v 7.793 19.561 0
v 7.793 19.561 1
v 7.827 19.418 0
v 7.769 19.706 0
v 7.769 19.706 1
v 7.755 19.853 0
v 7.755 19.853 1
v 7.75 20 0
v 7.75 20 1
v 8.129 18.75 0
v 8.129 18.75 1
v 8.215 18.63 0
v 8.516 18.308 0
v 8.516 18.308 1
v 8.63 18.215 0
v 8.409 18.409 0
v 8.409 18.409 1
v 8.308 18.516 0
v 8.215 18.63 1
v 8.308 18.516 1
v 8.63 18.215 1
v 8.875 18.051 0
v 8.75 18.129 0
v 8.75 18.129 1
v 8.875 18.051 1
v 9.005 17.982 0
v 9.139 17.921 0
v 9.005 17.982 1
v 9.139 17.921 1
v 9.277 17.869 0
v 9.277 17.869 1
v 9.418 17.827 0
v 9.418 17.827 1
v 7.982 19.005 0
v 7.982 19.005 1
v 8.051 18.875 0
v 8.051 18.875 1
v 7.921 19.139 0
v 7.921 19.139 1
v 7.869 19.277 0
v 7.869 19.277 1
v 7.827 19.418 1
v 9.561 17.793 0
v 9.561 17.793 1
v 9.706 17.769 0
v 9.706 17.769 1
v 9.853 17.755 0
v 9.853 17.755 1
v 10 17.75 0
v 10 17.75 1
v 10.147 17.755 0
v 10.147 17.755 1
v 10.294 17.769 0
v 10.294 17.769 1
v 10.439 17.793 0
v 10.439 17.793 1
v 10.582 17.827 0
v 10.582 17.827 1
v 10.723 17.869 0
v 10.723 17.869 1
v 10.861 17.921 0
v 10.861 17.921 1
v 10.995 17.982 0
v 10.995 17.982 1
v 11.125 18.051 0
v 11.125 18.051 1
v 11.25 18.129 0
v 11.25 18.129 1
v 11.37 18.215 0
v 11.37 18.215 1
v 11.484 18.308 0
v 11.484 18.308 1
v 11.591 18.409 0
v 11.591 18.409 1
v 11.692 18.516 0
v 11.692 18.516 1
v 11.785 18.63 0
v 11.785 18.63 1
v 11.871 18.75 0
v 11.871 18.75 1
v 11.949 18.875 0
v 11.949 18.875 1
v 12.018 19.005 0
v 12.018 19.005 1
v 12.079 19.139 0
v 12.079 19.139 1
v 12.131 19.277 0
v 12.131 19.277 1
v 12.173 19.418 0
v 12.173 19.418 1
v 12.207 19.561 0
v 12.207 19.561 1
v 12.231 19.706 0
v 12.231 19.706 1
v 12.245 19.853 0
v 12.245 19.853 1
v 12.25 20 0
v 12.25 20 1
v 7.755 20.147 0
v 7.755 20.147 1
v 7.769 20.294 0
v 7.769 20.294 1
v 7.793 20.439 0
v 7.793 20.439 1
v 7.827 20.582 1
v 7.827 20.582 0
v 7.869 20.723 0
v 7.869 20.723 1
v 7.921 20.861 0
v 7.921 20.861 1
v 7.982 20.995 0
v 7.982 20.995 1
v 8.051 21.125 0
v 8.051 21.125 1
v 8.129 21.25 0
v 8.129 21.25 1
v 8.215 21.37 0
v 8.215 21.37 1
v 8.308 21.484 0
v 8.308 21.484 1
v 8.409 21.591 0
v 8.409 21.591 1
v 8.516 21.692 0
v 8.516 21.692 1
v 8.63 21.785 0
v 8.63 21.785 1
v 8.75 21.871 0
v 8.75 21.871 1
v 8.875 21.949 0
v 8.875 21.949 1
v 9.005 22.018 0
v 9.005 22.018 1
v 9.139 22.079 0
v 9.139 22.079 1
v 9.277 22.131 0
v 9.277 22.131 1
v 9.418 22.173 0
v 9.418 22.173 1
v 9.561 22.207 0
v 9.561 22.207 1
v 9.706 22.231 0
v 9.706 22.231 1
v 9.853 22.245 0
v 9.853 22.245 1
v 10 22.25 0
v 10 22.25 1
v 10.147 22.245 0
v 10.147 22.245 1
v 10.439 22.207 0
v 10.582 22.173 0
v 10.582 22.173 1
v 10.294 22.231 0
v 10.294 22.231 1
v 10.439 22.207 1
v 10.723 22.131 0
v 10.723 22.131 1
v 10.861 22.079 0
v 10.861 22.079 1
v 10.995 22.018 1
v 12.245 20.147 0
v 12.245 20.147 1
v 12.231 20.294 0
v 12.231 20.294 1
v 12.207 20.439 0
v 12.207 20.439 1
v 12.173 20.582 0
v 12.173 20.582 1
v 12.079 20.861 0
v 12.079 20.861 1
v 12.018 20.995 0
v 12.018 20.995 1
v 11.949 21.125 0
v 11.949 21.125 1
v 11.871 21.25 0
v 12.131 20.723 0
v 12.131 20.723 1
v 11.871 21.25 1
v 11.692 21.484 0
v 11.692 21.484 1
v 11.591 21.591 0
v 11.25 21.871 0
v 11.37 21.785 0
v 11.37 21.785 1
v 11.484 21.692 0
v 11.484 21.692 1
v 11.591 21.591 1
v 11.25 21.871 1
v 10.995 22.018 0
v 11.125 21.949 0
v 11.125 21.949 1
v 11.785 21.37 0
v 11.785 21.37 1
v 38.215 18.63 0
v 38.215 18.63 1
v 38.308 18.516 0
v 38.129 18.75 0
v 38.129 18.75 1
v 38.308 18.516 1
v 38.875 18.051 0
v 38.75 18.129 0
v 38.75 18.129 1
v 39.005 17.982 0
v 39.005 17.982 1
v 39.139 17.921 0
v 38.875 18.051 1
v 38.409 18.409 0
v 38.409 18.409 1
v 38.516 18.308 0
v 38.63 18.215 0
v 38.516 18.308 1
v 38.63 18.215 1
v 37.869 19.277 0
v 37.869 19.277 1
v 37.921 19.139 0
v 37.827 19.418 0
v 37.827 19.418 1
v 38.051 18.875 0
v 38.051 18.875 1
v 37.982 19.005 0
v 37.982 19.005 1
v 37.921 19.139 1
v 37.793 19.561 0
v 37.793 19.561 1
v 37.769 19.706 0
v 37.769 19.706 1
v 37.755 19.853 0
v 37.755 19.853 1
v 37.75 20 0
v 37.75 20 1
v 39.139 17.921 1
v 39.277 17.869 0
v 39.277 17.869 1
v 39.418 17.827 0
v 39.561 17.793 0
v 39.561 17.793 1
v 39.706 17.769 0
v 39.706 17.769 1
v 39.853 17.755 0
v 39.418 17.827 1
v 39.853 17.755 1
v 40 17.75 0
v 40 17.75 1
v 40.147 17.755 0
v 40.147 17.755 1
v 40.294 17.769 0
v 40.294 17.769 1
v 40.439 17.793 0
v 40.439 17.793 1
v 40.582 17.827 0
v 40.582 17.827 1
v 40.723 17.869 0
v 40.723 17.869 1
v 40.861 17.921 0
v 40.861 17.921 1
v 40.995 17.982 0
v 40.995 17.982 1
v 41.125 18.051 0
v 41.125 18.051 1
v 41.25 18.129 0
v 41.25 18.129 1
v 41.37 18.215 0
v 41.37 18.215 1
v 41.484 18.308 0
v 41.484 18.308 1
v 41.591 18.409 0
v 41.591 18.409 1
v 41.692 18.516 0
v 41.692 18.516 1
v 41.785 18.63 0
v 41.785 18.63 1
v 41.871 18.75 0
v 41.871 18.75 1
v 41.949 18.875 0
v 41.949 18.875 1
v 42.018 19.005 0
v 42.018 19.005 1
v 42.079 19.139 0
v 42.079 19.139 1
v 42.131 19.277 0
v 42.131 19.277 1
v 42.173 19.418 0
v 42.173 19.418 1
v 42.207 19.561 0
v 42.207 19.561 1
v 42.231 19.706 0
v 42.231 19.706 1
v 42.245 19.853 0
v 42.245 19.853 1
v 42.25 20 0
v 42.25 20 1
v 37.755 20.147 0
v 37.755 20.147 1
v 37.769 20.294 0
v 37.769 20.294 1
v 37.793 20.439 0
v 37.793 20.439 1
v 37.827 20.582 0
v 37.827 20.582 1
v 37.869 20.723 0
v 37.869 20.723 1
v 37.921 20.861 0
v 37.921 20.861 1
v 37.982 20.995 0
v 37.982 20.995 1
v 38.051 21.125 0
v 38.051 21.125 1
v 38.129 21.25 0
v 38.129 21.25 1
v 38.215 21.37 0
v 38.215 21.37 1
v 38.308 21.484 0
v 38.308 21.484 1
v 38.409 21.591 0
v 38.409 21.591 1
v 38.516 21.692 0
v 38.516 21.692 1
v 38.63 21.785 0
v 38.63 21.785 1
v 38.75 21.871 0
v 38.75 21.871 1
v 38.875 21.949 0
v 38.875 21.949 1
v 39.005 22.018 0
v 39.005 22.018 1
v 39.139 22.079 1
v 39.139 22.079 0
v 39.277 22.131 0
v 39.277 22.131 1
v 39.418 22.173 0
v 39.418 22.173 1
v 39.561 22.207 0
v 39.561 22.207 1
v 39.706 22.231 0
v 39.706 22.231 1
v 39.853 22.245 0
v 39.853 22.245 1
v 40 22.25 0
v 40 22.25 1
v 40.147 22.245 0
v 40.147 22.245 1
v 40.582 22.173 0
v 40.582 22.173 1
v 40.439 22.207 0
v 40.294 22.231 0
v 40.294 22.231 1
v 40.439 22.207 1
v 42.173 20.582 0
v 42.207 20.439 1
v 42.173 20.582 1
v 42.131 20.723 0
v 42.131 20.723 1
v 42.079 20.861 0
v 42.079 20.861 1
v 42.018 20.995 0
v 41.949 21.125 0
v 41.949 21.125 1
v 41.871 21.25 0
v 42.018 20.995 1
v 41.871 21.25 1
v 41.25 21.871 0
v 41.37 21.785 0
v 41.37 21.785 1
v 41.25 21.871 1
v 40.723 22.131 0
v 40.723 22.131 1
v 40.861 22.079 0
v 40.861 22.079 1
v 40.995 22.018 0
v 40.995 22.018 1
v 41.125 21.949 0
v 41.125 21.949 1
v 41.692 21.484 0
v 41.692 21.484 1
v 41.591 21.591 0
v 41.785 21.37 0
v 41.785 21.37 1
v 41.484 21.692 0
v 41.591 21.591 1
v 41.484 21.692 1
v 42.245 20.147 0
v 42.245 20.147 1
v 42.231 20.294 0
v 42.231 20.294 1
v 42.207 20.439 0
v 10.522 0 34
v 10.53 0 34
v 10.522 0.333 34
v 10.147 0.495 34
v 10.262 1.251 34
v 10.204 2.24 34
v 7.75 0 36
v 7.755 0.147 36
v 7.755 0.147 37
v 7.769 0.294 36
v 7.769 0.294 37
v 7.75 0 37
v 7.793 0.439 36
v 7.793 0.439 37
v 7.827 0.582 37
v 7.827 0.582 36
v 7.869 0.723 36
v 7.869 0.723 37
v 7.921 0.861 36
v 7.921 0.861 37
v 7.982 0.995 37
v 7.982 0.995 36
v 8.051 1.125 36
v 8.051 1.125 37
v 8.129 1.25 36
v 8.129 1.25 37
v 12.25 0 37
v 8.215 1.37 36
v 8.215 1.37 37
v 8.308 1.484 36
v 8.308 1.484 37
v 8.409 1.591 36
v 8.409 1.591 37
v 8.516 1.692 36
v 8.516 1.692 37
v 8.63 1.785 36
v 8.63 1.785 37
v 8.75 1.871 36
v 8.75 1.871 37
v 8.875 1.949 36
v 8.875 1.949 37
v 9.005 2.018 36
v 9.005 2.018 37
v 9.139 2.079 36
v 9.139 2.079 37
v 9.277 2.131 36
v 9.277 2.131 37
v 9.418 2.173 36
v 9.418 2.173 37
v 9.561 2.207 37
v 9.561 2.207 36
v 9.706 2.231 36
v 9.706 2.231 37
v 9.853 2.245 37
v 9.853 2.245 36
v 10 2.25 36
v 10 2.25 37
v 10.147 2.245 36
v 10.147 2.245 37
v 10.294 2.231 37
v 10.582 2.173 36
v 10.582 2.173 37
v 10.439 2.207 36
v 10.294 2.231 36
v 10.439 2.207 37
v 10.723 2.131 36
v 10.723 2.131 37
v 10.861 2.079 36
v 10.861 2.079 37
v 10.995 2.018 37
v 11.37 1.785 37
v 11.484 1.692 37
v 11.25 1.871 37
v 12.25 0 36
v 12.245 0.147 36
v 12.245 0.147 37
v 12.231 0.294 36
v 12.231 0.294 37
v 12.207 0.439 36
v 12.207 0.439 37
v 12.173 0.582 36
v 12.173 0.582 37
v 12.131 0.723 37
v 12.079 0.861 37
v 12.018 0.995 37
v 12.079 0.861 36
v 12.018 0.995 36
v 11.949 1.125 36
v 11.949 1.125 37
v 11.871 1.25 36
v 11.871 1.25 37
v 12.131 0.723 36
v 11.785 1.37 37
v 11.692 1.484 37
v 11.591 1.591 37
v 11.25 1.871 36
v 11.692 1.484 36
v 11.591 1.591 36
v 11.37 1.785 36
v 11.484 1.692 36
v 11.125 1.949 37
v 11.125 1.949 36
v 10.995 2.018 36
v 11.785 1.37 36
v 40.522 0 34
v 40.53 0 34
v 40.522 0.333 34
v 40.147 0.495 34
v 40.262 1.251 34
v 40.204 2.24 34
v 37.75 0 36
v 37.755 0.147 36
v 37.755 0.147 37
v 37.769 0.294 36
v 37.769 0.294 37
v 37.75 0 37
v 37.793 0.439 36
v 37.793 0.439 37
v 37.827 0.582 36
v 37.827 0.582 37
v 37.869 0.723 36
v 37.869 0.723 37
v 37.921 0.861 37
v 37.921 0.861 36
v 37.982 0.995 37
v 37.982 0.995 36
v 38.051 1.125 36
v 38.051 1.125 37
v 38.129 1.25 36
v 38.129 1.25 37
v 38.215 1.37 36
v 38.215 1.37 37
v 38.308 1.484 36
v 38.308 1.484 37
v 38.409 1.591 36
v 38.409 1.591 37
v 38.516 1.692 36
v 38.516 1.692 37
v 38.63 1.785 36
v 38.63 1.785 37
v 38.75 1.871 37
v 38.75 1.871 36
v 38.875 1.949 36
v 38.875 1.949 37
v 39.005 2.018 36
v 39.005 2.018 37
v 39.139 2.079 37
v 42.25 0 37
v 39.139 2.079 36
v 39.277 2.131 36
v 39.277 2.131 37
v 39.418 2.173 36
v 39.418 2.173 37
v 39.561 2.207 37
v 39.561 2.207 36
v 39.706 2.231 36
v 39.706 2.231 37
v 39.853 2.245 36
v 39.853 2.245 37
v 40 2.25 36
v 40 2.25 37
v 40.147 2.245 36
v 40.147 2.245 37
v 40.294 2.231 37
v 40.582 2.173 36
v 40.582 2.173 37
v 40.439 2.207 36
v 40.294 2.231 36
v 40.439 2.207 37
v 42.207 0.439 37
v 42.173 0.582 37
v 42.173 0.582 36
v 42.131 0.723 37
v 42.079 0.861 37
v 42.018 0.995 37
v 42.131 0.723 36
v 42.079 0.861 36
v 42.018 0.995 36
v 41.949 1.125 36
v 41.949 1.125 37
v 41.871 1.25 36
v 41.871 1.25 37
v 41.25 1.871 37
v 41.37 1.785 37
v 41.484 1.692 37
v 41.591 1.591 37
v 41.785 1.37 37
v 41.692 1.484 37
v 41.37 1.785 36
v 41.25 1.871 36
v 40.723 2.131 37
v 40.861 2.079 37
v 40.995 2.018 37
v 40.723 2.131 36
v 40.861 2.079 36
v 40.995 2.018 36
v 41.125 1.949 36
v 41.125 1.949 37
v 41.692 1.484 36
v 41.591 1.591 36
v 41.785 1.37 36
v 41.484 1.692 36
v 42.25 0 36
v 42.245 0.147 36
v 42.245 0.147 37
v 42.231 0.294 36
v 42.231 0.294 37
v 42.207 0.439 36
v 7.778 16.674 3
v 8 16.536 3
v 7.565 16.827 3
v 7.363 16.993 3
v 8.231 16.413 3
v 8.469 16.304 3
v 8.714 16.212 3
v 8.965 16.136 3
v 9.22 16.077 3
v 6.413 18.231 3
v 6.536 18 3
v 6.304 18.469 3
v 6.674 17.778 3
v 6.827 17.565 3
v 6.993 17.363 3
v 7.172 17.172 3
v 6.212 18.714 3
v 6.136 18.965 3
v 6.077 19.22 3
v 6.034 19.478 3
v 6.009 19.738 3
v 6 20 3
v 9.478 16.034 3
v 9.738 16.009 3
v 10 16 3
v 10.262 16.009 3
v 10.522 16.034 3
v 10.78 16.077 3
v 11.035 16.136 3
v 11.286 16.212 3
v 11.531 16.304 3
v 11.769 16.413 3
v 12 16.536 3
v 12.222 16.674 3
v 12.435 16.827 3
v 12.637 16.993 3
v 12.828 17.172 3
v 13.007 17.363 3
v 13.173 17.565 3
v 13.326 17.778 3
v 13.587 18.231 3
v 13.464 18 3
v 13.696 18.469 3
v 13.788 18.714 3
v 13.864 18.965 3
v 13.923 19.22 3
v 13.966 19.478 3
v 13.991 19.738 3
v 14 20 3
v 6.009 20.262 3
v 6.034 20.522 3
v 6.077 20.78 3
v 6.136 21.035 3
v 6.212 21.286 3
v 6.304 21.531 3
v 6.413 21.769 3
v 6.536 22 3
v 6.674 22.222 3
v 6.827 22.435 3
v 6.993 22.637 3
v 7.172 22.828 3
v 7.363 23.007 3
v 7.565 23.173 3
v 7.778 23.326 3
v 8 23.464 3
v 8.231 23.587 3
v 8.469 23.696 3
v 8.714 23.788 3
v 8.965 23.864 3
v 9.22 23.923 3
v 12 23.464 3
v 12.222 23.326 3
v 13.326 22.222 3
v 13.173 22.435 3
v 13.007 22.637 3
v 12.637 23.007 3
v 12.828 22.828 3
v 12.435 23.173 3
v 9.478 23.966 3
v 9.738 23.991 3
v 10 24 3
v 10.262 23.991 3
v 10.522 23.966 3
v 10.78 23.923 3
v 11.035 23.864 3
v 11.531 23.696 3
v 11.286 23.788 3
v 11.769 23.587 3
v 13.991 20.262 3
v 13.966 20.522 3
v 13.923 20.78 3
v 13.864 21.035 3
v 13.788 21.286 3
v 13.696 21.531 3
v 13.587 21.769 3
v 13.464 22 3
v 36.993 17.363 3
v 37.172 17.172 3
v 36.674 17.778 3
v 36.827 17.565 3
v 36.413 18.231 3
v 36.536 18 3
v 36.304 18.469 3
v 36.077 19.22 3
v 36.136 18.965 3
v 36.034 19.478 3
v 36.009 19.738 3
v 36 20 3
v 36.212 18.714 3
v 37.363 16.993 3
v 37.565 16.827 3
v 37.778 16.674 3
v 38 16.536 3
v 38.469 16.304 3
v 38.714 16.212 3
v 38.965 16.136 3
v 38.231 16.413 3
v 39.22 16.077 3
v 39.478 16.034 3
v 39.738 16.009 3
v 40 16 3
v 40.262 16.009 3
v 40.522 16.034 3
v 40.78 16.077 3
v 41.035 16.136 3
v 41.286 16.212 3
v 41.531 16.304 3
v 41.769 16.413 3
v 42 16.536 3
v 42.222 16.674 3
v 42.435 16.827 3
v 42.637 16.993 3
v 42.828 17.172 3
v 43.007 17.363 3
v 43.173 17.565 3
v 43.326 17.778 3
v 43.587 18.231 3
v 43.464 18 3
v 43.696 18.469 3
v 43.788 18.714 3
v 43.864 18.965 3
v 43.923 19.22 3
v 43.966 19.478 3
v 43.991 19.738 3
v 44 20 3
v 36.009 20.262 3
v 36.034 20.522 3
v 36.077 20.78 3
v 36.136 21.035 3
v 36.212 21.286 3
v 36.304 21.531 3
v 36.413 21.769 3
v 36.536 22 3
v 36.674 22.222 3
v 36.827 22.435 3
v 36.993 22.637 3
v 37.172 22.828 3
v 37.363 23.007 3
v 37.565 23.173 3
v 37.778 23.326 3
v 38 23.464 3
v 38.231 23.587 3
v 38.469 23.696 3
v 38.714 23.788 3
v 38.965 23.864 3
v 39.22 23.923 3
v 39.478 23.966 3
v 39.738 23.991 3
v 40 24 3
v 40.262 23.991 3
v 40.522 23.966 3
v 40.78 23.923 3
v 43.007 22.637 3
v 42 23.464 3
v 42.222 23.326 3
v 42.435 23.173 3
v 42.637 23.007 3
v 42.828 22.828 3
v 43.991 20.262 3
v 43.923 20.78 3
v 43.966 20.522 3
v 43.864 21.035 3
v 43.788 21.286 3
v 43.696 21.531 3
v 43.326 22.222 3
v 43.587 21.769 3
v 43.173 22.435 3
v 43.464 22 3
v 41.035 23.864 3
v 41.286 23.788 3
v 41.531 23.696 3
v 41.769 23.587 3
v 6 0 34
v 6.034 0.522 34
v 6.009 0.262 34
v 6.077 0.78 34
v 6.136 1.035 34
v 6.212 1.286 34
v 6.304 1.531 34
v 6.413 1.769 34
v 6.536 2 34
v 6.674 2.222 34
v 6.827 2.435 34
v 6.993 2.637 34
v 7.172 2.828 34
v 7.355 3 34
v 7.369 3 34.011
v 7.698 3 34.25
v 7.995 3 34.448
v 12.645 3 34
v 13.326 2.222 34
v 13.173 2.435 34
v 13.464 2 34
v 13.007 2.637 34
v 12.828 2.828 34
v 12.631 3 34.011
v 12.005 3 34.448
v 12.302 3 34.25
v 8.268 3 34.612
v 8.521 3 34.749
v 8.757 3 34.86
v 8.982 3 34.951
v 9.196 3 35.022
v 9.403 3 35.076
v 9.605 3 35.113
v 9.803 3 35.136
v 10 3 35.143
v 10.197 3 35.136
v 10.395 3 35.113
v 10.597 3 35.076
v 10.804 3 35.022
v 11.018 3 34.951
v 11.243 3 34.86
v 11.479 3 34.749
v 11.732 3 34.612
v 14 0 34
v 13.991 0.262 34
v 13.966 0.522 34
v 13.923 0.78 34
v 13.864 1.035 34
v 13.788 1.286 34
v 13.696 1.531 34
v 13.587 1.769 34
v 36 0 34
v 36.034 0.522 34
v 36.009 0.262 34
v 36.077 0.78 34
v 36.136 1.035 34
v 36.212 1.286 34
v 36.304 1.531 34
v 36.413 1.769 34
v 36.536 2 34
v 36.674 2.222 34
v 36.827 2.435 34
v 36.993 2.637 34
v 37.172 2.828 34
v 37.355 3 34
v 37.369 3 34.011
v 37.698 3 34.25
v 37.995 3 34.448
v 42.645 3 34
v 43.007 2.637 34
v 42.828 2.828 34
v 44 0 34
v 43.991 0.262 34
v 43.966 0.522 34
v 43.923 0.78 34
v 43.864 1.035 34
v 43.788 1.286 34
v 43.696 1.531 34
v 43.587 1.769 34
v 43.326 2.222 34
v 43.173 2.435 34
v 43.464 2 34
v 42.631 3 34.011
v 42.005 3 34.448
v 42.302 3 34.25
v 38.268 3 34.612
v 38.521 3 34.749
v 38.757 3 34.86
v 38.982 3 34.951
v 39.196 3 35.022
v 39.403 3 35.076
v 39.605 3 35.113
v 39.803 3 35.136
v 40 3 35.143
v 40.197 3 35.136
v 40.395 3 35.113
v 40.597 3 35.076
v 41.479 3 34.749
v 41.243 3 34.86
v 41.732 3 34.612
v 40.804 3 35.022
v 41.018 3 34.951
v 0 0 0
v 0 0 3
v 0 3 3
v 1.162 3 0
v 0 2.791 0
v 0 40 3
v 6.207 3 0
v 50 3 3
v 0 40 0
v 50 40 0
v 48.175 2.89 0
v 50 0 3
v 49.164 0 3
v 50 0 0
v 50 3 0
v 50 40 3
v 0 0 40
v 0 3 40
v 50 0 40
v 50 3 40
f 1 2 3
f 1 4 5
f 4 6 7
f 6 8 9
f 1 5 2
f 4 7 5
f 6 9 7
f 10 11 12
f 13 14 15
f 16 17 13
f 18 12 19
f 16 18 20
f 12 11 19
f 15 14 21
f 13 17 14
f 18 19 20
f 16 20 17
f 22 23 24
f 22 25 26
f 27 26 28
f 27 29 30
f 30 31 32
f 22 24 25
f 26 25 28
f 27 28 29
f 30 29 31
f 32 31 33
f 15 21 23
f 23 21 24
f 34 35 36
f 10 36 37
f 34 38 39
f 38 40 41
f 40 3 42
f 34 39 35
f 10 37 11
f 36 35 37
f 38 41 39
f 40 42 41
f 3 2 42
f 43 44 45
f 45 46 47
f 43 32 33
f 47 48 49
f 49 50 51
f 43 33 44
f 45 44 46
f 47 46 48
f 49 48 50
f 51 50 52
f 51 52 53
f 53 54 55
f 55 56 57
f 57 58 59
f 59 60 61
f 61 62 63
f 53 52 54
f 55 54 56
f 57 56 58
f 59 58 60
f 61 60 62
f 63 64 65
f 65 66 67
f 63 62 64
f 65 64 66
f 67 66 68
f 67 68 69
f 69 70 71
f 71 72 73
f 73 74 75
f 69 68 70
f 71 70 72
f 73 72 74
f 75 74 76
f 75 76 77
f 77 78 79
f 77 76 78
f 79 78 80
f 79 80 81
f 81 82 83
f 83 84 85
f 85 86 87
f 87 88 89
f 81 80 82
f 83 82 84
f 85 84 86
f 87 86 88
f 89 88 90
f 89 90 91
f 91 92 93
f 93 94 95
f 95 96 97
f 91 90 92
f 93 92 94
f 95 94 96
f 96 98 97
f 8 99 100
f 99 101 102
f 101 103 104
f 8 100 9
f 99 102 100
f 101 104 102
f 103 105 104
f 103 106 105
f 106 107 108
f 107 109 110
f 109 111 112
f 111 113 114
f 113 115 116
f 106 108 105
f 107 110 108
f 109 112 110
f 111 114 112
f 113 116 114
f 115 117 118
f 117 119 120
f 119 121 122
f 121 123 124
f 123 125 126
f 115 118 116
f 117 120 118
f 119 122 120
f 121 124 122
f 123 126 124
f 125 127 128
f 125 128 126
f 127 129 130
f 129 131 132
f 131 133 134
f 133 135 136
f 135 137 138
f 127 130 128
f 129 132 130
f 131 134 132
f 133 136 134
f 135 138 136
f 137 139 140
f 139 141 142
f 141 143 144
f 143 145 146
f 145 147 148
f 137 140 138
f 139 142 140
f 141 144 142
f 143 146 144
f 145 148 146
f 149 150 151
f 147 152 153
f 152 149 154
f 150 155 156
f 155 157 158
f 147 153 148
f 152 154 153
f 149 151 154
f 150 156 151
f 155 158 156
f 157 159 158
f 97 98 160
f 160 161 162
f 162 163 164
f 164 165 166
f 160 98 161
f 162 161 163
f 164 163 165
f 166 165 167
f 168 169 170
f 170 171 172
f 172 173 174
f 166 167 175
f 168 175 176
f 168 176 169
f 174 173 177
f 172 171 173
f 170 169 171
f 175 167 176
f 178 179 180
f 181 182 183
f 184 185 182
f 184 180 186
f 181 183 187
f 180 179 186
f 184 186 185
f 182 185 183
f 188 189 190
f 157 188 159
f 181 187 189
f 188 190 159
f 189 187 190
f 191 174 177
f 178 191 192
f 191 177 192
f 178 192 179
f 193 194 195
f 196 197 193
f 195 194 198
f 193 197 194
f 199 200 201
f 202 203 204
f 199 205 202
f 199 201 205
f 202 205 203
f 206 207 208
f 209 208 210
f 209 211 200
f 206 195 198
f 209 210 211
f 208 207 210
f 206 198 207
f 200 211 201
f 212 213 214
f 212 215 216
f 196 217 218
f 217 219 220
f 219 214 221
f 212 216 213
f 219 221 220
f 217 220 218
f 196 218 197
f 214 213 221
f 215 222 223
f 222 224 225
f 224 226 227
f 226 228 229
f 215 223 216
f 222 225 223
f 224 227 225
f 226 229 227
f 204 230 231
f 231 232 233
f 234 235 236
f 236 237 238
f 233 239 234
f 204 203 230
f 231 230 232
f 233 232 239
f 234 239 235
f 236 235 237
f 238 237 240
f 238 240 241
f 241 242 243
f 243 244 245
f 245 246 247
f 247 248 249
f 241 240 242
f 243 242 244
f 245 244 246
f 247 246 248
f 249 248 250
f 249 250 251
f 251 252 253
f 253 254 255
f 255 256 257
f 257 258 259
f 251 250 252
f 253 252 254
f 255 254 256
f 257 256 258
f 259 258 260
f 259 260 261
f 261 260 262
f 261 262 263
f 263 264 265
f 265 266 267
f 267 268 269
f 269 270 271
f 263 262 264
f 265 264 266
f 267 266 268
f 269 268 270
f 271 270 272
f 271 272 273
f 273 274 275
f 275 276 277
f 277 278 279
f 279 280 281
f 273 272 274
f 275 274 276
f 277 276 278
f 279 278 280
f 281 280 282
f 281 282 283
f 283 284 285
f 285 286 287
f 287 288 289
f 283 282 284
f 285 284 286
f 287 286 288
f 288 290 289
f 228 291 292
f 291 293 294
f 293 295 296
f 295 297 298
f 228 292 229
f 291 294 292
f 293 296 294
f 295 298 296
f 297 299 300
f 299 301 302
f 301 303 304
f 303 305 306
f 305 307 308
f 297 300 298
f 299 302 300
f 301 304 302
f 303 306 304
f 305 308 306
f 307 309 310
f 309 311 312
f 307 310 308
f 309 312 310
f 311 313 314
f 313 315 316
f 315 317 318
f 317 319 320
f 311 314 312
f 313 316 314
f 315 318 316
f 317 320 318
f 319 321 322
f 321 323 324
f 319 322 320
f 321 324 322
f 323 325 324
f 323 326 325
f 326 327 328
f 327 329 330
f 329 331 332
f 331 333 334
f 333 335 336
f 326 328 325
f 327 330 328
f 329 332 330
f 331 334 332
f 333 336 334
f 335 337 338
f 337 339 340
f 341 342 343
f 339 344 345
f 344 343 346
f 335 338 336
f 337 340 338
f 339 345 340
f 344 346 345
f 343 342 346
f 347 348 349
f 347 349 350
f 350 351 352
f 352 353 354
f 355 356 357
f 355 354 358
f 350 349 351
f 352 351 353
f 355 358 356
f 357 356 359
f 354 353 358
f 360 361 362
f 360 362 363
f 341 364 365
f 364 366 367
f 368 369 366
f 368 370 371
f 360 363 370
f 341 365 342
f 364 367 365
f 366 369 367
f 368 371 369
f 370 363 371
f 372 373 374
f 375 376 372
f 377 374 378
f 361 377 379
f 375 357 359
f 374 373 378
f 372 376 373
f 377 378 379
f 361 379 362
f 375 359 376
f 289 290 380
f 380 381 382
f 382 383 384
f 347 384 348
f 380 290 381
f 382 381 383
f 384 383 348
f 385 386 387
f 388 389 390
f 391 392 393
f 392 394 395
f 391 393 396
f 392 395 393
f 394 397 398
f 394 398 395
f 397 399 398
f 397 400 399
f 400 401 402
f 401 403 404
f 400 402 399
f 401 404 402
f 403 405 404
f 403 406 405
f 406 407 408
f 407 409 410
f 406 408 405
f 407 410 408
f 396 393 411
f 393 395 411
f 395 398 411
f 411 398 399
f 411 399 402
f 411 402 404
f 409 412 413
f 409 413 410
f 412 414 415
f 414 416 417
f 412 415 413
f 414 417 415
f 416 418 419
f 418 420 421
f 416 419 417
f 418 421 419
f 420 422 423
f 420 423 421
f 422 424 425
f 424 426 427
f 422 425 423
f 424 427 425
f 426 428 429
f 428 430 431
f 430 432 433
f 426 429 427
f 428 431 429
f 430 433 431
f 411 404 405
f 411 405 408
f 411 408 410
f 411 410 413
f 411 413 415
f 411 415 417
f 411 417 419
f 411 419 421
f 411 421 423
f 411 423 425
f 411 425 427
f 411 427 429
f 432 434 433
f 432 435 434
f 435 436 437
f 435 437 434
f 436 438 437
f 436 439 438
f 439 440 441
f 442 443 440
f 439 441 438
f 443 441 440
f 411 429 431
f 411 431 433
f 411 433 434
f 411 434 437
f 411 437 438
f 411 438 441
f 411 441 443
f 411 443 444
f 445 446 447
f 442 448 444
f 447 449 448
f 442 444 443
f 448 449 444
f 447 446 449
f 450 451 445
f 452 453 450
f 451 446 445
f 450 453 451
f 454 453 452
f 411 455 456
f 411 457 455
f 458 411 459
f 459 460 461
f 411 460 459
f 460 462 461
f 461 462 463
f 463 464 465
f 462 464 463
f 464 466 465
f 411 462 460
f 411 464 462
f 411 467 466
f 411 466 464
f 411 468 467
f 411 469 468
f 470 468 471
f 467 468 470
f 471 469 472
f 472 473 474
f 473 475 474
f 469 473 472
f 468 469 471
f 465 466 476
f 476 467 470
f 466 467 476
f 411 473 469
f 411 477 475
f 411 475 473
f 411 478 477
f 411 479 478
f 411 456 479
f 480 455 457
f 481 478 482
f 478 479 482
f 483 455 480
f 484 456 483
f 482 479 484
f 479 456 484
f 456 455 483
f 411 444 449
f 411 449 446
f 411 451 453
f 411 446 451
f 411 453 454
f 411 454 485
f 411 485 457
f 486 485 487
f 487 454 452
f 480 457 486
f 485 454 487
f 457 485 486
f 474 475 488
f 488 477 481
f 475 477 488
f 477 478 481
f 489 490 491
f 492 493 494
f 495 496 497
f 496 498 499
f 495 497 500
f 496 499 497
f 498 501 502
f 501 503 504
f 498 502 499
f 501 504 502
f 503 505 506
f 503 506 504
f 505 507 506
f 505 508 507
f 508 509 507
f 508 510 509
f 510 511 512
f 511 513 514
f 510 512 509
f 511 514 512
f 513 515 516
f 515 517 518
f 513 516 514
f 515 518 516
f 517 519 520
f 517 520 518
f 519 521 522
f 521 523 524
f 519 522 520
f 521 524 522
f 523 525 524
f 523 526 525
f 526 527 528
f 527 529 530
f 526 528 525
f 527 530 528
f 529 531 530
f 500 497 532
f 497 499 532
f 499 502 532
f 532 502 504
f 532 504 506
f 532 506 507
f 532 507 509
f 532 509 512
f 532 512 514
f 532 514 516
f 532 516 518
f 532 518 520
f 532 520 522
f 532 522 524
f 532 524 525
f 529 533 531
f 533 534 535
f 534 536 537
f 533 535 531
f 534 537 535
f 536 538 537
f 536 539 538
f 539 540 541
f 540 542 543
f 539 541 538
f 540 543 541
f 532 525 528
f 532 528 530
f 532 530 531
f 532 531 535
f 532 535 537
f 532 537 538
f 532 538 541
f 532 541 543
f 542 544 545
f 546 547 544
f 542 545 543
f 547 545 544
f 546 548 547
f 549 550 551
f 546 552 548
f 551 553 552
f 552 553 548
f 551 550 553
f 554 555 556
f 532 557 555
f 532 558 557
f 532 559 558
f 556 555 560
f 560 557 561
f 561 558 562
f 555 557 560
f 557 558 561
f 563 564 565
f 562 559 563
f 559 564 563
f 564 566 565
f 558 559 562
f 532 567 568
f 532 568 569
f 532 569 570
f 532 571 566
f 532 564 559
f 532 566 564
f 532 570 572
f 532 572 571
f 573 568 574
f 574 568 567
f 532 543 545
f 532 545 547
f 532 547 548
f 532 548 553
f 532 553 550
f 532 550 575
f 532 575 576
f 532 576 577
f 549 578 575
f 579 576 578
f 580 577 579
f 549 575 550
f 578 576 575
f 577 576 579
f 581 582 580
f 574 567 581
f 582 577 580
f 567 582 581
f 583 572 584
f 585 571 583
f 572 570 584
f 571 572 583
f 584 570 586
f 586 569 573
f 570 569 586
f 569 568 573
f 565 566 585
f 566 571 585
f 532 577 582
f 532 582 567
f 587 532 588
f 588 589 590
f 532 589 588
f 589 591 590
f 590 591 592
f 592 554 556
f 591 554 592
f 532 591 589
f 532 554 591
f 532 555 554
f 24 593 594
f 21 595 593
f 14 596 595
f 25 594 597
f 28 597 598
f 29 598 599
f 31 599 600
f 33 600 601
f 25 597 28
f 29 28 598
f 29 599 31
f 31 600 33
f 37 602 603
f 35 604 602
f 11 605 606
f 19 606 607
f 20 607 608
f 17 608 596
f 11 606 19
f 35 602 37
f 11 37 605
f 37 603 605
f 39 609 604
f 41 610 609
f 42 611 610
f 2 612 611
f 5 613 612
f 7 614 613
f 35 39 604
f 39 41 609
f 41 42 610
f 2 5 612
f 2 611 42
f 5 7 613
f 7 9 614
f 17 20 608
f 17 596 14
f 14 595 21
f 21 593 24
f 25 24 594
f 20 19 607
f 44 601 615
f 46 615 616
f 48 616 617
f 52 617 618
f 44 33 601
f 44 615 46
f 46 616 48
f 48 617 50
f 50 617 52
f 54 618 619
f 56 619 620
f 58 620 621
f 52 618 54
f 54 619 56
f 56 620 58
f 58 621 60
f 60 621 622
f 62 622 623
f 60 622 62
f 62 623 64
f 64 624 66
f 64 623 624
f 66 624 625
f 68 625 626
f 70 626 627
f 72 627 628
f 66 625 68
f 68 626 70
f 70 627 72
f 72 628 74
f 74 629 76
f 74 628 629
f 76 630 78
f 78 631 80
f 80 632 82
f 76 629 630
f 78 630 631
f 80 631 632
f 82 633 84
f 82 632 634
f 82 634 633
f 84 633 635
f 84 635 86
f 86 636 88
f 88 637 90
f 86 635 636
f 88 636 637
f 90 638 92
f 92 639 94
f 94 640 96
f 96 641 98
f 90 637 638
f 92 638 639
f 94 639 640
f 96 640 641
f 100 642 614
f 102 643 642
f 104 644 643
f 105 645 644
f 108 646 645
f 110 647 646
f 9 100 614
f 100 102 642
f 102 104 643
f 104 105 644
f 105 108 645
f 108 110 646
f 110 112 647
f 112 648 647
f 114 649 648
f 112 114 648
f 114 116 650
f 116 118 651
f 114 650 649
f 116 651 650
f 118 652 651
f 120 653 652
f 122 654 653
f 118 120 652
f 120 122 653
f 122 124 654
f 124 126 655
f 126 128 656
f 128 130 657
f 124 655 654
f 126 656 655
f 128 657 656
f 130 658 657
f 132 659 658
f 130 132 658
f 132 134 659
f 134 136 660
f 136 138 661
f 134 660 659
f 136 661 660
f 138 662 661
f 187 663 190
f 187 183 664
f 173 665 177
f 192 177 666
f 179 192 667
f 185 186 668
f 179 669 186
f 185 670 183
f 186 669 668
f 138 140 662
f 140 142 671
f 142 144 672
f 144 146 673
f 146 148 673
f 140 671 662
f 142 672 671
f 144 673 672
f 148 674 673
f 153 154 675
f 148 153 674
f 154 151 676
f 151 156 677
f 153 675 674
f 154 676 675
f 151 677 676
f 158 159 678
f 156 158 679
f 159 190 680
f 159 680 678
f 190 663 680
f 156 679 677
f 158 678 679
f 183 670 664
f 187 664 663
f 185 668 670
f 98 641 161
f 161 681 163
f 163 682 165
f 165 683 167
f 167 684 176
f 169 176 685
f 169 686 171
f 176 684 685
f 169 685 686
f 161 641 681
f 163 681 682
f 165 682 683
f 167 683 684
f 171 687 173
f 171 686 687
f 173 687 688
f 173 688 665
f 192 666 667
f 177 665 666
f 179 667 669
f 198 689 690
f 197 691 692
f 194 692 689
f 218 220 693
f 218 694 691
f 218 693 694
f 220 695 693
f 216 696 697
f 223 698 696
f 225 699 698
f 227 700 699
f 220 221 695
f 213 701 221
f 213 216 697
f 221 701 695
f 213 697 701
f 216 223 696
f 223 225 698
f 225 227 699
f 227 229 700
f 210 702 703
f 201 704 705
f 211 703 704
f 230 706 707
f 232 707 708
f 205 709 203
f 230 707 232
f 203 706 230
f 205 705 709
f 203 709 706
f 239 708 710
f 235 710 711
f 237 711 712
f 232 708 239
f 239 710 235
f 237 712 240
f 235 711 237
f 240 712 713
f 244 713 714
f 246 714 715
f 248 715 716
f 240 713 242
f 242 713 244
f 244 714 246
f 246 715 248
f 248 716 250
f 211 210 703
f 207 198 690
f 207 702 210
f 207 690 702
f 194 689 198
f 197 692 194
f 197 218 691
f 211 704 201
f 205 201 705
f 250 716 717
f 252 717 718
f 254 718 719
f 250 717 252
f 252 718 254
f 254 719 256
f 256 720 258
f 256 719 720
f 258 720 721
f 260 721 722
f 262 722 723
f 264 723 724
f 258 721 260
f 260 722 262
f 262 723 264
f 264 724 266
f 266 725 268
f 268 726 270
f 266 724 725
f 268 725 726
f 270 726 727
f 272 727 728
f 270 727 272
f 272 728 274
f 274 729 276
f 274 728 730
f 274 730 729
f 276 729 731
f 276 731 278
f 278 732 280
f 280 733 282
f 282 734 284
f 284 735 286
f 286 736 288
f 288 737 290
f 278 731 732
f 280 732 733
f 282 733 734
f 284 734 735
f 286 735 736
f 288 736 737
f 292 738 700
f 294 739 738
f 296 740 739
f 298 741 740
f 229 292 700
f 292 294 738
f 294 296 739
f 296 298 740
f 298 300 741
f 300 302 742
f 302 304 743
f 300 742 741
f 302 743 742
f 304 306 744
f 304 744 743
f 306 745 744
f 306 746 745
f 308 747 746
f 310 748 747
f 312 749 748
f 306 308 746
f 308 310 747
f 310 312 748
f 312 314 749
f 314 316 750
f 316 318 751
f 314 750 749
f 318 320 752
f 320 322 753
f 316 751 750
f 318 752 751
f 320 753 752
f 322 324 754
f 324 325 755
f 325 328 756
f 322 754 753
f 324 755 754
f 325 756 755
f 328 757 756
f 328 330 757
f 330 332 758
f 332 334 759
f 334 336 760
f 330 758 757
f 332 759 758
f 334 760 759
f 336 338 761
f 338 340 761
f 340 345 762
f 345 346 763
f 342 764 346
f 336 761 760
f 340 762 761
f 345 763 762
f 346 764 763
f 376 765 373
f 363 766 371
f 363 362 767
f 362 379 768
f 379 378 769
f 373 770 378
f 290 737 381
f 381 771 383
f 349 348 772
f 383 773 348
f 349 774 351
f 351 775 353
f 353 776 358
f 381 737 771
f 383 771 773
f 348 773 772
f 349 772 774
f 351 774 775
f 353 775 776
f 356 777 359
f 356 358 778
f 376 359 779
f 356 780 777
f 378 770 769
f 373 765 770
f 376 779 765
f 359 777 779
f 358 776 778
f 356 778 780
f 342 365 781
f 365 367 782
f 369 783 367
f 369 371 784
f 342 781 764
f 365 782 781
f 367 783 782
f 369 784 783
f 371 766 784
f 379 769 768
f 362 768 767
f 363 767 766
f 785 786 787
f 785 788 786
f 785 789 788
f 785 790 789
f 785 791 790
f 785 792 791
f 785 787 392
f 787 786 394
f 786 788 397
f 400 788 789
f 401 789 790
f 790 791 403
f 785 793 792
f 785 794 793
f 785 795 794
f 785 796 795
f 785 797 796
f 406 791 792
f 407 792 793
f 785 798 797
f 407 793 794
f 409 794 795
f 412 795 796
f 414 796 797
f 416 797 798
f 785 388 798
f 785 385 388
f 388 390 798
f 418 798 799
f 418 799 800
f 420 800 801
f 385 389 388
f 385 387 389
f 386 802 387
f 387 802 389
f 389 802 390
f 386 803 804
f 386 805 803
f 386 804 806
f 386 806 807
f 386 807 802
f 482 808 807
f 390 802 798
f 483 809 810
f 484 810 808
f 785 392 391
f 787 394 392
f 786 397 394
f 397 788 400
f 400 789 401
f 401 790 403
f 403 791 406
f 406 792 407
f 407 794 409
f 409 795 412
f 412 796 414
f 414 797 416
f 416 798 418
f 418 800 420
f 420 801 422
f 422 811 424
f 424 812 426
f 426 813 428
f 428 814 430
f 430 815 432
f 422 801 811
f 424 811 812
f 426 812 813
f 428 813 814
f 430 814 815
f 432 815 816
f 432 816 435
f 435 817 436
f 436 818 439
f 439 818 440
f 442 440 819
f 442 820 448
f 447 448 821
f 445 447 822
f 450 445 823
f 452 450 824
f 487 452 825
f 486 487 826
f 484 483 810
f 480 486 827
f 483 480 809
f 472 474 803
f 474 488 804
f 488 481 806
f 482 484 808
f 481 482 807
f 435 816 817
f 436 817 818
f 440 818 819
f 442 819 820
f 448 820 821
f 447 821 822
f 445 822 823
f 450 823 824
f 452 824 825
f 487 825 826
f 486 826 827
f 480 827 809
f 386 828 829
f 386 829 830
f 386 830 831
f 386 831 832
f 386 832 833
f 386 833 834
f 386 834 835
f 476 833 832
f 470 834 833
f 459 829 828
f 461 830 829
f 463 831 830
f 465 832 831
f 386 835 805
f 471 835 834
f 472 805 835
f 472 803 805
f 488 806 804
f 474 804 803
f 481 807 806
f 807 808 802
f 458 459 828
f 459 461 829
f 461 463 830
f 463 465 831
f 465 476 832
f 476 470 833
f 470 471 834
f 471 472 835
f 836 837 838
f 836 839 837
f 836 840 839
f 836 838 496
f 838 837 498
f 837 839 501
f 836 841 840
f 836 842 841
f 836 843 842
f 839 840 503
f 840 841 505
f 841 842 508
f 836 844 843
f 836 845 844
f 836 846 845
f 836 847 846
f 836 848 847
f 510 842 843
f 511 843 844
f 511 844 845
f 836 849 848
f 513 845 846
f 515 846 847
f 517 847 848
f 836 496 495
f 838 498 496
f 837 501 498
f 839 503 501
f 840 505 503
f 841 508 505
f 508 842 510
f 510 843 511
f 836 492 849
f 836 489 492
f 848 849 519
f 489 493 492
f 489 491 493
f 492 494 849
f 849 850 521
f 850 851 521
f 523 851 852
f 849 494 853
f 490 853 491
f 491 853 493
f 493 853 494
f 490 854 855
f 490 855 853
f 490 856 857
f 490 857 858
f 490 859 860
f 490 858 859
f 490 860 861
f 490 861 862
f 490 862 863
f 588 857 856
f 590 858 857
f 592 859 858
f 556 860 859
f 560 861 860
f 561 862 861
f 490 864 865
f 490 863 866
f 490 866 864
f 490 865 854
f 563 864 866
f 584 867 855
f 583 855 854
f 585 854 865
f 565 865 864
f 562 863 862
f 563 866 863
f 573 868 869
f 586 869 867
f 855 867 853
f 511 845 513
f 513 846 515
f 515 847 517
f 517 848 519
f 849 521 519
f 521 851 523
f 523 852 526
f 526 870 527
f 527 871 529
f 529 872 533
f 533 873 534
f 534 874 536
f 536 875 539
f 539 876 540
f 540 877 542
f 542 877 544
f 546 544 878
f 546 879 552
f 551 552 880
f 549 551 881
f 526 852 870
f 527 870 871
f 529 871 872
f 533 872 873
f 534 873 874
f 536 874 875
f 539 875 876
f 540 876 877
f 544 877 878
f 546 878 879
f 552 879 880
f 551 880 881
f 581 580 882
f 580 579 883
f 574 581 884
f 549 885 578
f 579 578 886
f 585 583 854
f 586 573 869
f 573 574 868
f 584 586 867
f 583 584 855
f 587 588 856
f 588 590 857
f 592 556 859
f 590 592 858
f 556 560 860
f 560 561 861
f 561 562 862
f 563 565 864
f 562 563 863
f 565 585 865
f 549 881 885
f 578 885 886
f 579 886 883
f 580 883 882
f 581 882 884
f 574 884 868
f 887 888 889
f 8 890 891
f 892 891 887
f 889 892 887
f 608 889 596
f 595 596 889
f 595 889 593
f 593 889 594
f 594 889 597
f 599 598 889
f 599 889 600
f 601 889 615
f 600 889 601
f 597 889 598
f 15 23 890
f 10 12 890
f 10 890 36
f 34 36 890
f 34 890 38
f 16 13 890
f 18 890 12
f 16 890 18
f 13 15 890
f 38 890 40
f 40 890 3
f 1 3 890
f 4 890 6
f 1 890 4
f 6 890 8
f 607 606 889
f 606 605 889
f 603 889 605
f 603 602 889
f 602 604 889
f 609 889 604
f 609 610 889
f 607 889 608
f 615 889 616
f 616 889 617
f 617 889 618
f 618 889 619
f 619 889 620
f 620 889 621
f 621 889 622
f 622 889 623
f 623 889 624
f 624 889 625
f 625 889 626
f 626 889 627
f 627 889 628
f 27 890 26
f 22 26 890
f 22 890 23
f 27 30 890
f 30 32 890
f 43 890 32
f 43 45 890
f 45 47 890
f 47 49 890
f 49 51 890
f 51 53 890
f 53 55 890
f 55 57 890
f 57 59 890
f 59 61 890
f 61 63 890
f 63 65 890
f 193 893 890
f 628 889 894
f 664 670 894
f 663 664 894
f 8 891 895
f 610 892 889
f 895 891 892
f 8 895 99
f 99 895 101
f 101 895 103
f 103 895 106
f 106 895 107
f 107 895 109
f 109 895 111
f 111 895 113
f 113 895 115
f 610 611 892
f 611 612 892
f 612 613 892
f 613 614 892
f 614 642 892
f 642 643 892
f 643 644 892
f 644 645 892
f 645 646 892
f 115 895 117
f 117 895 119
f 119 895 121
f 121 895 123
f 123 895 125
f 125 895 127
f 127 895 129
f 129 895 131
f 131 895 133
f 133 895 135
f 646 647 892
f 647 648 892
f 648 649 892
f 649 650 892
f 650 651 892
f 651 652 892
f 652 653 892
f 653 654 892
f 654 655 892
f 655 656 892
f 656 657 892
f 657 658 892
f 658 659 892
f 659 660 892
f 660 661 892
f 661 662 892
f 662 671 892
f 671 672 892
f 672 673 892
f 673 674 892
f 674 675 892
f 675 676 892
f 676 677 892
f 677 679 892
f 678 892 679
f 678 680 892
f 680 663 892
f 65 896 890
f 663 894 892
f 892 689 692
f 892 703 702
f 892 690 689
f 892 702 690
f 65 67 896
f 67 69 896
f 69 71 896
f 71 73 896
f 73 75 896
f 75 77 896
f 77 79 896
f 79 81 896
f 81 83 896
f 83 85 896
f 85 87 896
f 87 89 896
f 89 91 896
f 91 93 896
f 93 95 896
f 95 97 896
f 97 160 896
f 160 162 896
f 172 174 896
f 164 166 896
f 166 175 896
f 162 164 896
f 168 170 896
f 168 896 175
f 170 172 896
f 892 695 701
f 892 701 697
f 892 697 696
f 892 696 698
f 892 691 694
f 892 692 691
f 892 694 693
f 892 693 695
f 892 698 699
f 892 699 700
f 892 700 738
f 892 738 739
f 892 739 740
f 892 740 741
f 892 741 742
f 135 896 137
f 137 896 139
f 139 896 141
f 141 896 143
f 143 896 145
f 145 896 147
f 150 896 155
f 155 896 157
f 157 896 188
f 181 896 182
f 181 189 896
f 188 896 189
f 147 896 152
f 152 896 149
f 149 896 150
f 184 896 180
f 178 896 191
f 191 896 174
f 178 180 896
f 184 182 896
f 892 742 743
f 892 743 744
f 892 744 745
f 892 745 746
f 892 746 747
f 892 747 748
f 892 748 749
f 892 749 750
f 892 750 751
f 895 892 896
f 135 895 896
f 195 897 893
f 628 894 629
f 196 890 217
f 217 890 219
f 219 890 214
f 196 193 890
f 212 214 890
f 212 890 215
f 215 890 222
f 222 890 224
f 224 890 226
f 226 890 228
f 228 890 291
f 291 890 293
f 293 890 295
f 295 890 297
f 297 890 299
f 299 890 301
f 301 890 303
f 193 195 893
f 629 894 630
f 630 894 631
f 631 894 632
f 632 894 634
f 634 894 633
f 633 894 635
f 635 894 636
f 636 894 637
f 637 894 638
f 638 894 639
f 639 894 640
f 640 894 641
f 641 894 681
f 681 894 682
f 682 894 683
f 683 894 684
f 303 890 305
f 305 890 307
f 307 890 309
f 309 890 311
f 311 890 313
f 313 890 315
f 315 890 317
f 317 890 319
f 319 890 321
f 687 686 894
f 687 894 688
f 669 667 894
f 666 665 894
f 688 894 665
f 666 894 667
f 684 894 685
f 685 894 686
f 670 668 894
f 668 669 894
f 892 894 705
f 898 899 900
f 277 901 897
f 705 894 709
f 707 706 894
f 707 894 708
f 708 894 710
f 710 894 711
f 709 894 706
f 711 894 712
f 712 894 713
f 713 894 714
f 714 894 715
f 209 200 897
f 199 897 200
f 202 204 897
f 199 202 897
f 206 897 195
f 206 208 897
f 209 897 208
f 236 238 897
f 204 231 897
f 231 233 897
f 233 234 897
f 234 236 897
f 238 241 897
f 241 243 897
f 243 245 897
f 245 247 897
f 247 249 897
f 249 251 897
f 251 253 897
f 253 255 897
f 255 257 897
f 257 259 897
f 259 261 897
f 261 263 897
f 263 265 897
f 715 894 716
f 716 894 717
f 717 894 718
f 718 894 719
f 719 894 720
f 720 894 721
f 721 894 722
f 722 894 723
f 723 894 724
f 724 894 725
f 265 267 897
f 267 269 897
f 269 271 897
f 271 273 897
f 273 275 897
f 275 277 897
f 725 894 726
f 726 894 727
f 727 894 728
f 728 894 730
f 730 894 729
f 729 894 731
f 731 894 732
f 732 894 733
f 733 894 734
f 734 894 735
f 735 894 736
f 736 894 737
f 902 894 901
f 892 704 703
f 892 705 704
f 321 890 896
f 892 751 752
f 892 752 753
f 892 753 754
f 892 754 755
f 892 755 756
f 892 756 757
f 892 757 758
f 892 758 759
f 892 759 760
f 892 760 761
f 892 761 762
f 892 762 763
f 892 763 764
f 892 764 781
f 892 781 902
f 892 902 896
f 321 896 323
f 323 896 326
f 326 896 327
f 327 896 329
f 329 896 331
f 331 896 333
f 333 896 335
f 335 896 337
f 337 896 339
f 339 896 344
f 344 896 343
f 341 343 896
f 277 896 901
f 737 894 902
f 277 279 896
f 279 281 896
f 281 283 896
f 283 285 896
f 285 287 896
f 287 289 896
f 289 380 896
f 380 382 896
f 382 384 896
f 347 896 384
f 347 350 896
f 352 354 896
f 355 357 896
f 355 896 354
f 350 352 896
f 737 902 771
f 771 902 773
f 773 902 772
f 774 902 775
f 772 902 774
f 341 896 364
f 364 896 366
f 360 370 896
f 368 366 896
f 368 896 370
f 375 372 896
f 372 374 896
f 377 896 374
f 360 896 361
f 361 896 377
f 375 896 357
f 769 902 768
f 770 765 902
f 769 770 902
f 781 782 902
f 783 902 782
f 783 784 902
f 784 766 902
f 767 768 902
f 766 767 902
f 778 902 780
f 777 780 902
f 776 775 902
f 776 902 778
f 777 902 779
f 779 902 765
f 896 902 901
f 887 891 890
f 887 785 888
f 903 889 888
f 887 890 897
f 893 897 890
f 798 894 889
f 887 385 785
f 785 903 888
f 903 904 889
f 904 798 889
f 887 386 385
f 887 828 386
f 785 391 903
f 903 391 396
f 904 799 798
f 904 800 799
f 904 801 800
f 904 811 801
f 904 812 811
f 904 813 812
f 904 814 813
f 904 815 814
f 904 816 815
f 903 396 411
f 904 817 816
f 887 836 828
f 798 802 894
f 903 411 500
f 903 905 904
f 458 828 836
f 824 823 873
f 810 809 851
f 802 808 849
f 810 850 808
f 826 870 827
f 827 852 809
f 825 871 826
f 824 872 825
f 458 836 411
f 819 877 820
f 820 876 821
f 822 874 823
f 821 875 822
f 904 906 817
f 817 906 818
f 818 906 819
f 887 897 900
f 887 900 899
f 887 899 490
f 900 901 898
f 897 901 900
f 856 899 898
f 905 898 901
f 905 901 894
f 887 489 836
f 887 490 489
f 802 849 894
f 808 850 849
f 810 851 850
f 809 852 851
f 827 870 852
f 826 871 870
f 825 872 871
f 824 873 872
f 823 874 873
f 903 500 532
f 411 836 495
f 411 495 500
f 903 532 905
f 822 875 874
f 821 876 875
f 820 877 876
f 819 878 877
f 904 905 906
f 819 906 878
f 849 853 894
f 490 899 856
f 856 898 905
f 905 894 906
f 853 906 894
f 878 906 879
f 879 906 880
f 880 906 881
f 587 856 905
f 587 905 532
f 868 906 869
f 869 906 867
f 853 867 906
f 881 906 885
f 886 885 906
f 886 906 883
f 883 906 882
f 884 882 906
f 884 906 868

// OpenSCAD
$fn = 96;

// Dimensions
w = 50;      // flange width
d = 40;      // horizontal flange depth
h = 40;      // vertical flange height
t = 3;       // thickness

// Hole parameters
through_d = 4.5;
csk_d = 8;
csk_depth = 2;
inset = 10;

// Countersunk hole cutout along +Z, with countersink on the top side
module csk_cut(hole_len) {
    union() {
        cylinder(h = hole_len, d = through_d);
        translate([0, 0, hole_len - csk_depth])
            cylinder(h = csk_depth, d1 = through_d, d2 = csk_d);
    }
}

// Horizontal flange: X width, Y depth, Z thickness
module horizontal_flange() {
    difference() {
        cube([w, d, t], center = false);

        for (x = [inset, w - inset]) {
            translate([x, d/2, 0])
                csk_cut(t);
        }
    }
}

// Vertical flange: X width, Y thickness, Z height
// Positioned so inner corner is at the origin and it extends in +Z.
// Countersink is on the outside face at Y = thickness side.
module vertical_flange() {
    difference() {
        cube([w, t, h], center = false);

        for (x = [inset, w - inset]) {
            translate([x, 0, h - t])
                rotate([180, 0, 0])  // make countersink face outward (+Y)
                    csk_cut(t);
        }
    }
}

union() {
    horizontal_flange();
    vertical_flange();
}
